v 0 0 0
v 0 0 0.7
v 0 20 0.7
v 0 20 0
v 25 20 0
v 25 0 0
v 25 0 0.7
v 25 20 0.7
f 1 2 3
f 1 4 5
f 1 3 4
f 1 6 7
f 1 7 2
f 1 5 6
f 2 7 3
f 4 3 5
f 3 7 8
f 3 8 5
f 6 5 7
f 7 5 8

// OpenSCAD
/* Warning, this is a very basic generator with a lot of approximation 
input data : [MODULE, LSB, 25x20x0.70mm, 42, , A, C04-21454A]
generated by com.zoubworld.electronics.cad.model3d.Basic
Date : Sun Feb 15 10:50:49 CET 2026
*/

//body
color("black")
translate([0,0,0])
cube([25.0,20.0,0.7], center=false);
